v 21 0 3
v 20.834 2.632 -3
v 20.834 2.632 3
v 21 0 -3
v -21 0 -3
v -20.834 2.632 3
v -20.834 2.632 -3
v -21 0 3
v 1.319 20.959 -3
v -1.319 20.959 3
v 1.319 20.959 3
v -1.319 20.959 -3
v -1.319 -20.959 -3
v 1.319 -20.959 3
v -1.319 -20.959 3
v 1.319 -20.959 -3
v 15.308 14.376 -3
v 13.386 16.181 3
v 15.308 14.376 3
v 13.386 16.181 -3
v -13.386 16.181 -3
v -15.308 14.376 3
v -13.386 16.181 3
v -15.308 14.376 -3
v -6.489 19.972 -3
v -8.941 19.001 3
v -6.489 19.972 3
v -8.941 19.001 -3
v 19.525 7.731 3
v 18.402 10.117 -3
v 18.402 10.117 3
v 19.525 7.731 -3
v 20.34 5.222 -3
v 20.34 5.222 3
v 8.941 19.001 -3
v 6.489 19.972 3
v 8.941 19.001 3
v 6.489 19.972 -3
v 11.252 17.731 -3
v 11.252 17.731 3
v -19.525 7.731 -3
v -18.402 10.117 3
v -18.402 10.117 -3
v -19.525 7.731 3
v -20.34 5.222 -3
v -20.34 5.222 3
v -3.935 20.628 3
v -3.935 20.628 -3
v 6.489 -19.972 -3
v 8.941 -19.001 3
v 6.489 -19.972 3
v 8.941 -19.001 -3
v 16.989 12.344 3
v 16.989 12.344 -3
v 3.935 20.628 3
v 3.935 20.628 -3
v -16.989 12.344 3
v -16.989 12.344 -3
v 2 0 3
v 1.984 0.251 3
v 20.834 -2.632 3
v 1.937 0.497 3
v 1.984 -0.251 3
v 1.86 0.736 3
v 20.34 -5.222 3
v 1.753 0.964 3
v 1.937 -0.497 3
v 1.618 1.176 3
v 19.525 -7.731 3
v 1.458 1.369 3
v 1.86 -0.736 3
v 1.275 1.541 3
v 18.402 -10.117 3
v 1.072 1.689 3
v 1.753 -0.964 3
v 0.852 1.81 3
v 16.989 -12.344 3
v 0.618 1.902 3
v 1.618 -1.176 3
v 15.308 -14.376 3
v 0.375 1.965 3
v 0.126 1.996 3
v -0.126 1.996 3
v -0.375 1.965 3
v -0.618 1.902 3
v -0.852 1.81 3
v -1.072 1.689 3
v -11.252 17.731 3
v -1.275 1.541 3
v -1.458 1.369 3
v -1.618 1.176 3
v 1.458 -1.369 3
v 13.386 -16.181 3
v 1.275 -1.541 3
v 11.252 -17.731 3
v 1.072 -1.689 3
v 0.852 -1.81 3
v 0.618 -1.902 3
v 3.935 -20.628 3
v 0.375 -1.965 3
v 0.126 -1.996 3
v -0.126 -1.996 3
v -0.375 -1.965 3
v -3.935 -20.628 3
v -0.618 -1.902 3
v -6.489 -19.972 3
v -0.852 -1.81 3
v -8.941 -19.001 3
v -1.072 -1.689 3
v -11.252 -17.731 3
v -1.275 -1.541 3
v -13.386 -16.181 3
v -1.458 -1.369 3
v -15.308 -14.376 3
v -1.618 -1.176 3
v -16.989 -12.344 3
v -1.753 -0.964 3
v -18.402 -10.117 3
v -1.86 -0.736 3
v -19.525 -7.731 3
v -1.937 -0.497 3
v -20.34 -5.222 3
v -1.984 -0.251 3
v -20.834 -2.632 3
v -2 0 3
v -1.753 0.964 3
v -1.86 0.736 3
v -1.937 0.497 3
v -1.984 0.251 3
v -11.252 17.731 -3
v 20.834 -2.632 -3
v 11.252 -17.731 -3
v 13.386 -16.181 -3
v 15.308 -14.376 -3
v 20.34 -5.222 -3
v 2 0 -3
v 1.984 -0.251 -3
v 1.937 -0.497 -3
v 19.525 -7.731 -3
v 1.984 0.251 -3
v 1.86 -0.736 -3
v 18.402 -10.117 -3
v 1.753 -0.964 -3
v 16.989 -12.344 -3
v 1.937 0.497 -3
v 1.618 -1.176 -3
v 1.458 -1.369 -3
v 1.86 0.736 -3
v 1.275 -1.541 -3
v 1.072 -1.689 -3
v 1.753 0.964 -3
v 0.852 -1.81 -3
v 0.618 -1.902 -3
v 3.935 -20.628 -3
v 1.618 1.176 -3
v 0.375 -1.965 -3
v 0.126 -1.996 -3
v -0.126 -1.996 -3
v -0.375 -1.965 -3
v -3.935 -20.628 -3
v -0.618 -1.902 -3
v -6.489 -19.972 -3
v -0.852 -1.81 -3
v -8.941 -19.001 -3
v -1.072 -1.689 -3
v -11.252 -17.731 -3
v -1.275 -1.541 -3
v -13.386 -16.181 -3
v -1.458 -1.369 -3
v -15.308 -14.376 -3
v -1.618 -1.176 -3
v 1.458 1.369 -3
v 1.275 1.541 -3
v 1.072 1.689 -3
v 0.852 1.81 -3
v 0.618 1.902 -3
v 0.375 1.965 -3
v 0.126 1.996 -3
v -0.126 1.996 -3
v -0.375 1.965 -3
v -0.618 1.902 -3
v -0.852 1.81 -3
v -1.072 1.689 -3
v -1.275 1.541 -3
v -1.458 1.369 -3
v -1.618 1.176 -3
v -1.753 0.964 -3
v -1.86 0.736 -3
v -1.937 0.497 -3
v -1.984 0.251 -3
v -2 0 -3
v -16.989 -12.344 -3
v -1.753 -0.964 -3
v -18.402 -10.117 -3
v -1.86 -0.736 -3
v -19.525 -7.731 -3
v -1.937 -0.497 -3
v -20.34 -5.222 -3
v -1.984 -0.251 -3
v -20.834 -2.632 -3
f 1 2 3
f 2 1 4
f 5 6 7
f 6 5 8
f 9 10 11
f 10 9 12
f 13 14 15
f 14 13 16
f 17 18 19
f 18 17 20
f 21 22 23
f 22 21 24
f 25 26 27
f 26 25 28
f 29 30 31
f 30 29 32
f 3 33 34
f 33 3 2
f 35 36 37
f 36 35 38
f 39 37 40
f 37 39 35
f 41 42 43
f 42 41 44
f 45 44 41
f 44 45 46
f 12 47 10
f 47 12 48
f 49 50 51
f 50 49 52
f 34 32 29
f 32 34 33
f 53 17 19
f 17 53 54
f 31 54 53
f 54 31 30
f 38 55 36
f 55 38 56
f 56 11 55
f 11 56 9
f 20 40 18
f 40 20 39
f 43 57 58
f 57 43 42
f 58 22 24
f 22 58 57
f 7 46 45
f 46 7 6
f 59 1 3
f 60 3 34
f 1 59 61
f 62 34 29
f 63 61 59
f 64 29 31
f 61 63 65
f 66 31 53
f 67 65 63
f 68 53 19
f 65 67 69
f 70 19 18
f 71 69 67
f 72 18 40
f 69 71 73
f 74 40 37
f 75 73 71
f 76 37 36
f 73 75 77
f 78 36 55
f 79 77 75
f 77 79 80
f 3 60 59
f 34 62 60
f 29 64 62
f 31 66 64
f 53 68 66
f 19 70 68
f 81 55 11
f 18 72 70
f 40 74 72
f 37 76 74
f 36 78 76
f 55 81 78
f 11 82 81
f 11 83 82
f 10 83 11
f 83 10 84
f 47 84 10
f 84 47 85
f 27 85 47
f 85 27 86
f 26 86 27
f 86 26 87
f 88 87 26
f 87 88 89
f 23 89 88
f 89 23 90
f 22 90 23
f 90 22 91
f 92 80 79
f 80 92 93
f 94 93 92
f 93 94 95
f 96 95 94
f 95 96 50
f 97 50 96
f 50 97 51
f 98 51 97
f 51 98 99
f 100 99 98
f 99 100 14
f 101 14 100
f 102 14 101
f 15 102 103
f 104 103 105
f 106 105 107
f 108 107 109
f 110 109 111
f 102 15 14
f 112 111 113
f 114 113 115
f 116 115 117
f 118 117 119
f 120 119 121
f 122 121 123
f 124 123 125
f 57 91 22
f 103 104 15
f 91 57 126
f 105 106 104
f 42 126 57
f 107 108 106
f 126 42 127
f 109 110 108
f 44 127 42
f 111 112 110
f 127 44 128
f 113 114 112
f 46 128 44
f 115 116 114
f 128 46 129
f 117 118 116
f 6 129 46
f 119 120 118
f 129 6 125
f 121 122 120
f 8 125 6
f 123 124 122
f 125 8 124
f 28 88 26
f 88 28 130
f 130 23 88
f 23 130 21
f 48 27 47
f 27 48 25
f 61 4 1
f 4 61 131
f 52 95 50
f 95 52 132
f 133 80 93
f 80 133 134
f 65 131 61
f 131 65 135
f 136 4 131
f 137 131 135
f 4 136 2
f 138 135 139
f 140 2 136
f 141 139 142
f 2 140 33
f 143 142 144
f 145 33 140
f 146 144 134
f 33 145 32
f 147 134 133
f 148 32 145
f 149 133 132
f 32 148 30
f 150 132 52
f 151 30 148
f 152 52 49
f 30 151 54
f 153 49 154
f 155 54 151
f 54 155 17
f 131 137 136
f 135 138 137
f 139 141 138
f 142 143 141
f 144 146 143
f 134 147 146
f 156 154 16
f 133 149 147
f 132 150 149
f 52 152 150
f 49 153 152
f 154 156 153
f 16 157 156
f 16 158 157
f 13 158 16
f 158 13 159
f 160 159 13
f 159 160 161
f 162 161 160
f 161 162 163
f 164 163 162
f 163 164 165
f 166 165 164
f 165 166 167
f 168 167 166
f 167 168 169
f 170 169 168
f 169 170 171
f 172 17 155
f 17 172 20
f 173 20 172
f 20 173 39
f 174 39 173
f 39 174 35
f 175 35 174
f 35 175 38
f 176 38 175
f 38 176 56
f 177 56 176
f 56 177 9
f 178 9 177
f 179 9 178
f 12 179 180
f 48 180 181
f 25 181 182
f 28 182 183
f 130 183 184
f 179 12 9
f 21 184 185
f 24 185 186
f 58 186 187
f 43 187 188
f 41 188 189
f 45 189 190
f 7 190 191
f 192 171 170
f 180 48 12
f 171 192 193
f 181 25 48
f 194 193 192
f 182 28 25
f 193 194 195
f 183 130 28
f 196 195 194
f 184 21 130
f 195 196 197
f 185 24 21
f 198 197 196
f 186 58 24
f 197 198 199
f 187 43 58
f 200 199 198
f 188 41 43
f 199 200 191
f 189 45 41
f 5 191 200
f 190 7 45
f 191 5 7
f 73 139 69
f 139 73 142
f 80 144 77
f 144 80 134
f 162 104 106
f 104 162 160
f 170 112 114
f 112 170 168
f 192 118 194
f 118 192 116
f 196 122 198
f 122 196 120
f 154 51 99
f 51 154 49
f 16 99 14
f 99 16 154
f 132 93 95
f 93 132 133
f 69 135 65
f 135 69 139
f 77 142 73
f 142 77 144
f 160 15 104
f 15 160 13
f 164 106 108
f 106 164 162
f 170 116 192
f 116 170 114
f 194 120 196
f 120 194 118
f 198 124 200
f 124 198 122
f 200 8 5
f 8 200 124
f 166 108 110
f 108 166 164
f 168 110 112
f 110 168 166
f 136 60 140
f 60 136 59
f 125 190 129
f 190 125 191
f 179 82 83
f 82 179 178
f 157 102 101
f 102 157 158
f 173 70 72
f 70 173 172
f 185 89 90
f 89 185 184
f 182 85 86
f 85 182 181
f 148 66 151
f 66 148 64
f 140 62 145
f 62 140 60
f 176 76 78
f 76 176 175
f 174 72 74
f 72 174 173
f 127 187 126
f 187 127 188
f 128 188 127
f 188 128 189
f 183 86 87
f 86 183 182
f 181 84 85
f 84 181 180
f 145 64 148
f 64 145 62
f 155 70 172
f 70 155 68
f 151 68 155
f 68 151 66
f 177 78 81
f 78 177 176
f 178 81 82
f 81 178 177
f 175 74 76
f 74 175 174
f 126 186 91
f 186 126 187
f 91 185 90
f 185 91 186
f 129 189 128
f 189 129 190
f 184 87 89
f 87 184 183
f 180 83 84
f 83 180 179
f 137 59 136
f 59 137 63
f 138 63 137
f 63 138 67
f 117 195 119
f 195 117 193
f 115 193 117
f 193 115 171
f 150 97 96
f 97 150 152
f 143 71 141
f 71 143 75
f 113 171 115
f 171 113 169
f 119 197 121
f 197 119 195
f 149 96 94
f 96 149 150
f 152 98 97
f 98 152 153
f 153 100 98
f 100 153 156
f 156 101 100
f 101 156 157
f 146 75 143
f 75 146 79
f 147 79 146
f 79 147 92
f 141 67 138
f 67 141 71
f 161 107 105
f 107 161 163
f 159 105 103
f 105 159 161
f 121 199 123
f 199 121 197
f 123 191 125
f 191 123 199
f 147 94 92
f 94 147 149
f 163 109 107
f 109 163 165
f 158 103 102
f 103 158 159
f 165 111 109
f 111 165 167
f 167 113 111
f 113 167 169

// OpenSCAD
$fn = 50;


difference() {
	union() {
		translate(v = [0, 0, -3.0000000000]) {
			cylinder(h = 6, r = 21.0000000000);
		}
	}
	union() {
		translate(v = [0, 0, -100.0000000000]) {
			cylinder(h = 200, r = 2);
		}
	}
}
